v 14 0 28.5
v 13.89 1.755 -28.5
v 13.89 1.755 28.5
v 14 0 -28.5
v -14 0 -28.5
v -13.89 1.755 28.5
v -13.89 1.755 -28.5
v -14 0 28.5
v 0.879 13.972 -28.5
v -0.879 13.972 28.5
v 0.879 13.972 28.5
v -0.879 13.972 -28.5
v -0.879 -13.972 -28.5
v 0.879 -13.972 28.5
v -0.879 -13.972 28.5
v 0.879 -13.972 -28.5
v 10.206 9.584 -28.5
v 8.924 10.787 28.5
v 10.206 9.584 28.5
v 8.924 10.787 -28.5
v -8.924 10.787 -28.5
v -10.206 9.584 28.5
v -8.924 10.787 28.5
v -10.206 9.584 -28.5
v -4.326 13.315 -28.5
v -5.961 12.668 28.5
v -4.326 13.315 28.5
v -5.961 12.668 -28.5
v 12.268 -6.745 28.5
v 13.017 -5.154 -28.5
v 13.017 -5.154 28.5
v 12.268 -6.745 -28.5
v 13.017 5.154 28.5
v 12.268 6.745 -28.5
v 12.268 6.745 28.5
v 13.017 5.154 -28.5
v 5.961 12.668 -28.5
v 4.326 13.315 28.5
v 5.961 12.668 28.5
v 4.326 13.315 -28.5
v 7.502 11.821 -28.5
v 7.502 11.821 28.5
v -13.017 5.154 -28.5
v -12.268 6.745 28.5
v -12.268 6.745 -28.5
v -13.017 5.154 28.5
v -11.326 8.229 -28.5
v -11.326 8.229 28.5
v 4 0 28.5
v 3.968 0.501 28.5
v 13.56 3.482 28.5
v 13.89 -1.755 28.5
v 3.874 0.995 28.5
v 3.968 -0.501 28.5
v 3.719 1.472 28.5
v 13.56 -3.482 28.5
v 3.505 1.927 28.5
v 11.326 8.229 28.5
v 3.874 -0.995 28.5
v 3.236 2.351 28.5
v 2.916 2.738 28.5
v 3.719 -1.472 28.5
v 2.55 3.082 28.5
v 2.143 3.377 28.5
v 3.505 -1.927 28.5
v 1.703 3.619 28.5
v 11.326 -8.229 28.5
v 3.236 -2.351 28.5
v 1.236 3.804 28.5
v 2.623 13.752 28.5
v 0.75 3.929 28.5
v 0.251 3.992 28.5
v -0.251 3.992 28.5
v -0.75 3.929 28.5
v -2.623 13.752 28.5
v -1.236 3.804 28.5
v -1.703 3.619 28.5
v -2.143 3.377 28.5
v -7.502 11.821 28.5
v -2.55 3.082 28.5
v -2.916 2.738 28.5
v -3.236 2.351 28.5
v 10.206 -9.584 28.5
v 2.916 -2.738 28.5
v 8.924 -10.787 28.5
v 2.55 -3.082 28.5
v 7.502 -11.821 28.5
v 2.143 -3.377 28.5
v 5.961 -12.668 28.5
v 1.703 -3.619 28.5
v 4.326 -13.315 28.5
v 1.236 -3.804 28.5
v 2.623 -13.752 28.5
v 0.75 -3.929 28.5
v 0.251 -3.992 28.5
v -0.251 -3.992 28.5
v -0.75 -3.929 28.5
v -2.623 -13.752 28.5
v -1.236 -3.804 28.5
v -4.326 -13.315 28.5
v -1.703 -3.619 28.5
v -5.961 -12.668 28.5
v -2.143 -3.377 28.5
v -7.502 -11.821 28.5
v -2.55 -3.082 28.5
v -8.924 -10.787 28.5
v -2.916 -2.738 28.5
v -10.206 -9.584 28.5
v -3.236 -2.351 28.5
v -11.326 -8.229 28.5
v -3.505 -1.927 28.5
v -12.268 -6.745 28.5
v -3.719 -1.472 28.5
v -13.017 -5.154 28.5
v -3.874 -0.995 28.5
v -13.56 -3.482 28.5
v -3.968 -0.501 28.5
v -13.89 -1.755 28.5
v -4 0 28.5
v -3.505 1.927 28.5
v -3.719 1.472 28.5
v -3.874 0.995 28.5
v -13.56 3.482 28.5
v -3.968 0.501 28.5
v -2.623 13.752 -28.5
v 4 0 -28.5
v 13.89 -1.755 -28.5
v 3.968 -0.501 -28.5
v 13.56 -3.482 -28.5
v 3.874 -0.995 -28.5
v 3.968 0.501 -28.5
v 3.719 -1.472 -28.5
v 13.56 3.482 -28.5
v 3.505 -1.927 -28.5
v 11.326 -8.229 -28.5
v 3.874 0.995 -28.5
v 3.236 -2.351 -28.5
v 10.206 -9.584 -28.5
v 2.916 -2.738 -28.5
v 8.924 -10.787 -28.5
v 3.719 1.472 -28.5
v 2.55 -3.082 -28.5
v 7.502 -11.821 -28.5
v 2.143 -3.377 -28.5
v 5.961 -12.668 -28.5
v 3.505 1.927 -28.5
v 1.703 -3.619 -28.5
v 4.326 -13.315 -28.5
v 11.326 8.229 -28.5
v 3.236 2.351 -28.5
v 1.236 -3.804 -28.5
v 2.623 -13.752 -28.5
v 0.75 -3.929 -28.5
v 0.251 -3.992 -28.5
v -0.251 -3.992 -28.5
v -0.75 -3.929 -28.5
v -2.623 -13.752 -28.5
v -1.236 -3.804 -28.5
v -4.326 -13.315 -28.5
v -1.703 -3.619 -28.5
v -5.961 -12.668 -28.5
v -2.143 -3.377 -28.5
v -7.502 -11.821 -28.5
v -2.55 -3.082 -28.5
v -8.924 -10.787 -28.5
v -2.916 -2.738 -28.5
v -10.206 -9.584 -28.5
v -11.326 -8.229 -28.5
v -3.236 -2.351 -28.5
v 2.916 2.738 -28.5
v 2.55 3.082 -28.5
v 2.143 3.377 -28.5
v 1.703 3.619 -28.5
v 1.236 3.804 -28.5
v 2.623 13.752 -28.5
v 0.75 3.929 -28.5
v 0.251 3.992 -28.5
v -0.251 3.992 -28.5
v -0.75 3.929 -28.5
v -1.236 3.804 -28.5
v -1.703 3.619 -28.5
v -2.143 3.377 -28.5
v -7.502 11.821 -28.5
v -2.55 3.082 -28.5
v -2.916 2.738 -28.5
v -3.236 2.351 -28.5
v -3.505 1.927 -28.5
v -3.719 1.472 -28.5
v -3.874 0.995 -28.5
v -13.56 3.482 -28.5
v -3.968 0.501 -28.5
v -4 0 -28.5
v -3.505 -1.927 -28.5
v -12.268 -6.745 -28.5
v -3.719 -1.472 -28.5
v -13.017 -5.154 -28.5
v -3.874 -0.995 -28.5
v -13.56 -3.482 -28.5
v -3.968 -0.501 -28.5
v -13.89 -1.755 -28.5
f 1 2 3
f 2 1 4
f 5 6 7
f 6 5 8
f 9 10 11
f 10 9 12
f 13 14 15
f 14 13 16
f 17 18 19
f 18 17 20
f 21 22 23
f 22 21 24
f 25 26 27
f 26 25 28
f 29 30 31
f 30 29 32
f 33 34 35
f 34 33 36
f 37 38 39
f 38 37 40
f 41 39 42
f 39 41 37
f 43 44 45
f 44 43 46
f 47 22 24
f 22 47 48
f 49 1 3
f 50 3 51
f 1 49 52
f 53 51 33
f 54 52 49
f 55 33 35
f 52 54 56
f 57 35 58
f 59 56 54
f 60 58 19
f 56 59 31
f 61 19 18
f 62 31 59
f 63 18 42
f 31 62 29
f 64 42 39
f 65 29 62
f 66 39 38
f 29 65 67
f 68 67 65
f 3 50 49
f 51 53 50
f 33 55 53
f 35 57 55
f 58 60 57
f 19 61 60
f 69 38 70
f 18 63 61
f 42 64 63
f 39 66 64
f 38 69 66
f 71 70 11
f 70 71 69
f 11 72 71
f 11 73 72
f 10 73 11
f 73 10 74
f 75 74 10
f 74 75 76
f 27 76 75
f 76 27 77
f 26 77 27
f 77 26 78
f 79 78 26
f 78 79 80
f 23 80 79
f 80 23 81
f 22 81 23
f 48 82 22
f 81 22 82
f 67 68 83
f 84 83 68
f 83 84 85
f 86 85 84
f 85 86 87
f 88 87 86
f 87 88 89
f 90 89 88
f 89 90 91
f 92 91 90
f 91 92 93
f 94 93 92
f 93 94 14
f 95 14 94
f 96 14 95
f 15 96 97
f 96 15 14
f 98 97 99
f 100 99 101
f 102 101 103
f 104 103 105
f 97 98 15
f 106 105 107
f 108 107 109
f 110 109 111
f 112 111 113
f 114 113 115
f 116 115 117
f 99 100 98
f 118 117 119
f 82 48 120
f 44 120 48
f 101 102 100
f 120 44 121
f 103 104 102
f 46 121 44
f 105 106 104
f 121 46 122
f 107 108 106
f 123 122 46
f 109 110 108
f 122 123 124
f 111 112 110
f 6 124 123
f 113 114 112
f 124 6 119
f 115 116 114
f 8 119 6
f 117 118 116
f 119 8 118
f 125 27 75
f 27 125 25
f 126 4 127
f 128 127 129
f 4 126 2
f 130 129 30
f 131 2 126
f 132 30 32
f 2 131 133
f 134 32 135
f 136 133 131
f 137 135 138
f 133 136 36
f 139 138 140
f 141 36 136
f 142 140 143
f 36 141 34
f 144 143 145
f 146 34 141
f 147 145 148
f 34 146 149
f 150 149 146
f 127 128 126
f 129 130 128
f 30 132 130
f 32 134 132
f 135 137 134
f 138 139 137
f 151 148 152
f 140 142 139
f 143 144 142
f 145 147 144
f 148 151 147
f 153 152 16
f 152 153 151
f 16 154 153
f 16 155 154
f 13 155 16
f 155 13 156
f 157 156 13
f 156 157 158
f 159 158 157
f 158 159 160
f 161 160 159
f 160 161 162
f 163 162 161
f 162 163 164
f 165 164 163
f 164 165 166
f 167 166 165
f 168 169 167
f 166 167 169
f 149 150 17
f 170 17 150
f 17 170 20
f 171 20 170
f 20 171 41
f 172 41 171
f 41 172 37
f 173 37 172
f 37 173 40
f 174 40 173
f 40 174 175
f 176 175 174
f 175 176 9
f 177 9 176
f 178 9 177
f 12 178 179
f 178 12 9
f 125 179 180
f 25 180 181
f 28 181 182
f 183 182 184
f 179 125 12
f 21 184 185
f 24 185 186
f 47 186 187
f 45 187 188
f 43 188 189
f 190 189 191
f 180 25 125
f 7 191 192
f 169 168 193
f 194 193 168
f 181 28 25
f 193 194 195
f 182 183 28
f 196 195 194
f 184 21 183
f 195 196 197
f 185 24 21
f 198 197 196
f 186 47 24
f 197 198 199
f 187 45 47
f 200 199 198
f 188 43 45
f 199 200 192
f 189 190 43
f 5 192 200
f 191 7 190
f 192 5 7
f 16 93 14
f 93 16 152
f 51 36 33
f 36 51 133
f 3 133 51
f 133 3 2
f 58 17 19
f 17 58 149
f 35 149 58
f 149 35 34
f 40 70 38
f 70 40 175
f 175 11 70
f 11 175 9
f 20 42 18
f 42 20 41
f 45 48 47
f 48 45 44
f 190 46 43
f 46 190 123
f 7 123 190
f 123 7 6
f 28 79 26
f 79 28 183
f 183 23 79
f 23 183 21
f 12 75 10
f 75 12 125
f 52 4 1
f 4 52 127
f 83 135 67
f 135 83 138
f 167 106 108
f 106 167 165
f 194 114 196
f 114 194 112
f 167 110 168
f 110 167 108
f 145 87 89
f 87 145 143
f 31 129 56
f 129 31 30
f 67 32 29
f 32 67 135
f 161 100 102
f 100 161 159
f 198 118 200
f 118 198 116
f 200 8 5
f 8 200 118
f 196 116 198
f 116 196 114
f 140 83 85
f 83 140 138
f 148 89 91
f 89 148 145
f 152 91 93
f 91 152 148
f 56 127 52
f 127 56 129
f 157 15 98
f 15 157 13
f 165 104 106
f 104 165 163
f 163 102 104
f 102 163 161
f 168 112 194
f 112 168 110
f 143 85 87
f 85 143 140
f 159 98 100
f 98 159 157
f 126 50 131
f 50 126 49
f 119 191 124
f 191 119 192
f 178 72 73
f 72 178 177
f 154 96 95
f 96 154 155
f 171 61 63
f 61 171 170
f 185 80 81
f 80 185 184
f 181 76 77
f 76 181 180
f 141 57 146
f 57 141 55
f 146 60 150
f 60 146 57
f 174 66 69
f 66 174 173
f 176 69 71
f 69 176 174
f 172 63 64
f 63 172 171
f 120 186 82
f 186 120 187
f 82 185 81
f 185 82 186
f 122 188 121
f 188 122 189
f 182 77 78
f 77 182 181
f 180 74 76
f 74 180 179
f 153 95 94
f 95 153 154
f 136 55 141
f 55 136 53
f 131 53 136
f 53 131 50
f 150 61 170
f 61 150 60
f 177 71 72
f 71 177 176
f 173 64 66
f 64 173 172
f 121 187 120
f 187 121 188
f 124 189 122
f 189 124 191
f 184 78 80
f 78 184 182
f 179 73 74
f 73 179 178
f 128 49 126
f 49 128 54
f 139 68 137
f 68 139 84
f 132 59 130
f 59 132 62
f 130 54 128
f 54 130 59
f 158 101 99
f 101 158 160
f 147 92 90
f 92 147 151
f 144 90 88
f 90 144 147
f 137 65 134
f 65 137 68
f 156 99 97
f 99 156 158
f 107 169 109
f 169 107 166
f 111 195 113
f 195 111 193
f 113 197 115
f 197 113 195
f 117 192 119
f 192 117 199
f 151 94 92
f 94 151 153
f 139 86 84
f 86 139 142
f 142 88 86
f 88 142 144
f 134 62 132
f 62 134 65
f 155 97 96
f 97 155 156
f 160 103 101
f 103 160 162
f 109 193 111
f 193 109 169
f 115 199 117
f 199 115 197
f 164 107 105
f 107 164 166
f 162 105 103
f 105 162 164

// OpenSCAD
$fn = 50;


difference() {
	union() {
		translate(v = [0, 0, -28.5000000000]) {
			cylinder(h = 57, r = 14.0000000000);
		}
	}
	union() {
		translate(v = [0, 0, -100.0000000000]) {
			cylinder(h = 200, r = 4.0000000000);
		}
	}
}
